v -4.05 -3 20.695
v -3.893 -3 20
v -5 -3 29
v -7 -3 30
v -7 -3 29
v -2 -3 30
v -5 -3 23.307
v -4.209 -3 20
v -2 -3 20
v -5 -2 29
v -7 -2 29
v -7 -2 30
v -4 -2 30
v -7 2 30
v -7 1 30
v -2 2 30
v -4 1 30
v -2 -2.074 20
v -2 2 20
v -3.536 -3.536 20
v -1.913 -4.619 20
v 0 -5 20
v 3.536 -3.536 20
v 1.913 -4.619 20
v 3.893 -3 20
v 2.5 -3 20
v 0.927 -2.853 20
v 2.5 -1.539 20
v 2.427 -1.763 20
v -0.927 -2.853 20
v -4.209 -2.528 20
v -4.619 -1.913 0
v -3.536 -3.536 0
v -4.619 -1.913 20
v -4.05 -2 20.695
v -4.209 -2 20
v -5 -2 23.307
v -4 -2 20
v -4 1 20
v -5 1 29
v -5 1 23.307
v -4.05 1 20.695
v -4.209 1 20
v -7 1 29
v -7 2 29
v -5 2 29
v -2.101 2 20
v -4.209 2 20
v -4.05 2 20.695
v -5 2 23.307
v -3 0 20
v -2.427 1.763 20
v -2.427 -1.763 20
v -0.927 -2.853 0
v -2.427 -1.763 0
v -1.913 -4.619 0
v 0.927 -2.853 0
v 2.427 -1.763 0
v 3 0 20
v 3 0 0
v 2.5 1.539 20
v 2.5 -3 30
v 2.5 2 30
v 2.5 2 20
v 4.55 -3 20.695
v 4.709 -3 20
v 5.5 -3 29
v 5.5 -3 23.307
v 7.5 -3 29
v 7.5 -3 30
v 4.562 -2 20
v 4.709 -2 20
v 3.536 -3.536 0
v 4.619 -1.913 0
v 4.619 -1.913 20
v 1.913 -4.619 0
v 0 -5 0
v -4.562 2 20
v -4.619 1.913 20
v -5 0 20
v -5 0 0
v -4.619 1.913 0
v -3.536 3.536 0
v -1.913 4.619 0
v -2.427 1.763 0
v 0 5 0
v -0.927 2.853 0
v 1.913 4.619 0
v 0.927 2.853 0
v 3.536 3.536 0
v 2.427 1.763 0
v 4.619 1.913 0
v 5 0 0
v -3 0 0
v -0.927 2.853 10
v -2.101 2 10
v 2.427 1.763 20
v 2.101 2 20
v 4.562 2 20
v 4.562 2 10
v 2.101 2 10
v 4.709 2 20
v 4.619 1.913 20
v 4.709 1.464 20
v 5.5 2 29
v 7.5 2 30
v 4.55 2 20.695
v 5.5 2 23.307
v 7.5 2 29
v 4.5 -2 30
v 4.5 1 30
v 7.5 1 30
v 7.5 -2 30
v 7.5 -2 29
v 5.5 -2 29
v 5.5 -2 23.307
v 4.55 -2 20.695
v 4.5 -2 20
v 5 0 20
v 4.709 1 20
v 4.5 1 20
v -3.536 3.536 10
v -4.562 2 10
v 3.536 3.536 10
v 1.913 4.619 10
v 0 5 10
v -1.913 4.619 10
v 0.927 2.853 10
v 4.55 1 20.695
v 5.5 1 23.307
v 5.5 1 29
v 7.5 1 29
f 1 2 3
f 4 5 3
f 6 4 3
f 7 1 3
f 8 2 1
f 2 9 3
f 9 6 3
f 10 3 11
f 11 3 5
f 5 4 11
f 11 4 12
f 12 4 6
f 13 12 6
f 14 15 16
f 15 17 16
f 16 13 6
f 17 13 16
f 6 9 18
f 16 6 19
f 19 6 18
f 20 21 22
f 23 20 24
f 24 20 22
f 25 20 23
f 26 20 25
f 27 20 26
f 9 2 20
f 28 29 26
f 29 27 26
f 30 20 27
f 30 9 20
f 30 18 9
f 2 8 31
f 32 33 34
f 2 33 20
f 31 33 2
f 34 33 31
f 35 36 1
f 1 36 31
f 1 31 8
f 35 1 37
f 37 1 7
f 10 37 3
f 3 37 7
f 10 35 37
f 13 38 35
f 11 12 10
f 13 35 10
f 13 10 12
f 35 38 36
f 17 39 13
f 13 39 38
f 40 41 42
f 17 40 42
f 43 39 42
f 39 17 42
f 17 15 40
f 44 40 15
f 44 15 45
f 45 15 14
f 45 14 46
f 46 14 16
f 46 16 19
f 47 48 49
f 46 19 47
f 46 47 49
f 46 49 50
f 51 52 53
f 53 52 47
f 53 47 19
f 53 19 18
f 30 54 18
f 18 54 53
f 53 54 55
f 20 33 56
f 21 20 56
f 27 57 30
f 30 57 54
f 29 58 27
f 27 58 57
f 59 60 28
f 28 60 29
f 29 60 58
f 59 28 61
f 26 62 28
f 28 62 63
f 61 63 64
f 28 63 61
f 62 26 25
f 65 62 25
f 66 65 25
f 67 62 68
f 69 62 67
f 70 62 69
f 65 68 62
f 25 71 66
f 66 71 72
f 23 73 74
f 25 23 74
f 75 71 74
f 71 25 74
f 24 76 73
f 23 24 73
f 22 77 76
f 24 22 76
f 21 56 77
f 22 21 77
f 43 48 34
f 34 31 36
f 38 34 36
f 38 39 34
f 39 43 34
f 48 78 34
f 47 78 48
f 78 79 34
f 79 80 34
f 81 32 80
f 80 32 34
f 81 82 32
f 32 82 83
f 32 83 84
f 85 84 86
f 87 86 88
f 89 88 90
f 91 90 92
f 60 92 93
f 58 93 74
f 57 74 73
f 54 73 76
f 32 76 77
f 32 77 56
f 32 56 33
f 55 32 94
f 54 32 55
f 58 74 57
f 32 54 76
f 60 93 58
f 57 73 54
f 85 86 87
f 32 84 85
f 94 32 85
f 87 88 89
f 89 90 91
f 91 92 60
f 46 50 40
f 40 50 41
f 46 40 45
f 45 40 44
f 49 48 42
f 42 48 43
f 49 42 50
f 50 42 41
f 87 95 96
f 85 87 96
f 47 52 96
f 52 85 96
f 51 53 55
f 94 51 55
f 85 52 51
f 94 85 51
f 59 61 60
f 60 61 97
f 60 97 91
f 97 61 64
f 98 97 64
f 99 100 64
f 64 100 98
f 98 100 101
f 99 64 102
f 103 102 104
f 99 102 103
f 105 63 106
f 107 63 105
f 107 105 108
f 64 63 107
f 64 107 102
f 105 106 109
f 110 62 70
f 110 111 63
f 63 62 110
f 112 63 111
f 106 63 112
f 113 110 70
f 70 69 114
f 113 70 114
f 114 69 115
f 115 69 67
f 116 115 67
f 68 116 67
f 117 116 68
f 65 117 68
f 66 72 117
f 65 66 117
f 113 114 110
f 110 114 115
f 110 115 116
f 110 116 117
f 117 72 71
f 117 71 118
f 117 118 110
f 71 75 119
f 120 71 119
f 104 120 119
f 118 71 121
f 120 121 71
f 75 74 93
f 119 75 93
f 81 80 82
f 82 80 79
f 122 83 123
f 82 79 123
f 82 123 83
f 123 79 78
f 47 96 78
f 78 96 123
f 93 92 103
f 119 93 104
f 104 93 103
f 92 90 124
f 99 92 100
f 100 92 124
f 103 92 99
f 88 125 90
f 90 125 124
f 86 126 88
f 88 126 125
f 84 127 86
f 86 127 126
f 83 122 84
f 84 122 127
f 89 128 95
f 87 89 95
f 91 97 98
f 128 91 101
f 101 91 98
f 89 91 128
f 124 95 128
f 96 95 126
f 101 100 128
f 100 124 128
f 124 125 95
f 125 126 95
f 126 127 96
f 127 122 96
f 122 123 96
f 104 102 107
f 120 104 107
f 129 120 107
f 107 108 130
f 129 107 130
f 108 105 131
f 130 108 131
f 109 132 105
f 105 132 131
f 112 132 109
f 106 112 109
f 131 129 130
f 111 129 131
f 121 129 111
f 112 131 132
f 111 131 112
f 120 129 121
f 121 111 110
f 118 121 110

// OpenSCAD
/*
    Openscad Rubber-band Loom.

    This is a fishtail rubber-band loom for weaving.

    Copyright (C) 2014. Linus Molteno, linus@molteno.net
  
    This program is free software: you can redistribute it and/or modify
    it under the terms of the GNU General Public License as published by
    the Free Software Foundation, either version 3 of the License, or
    (at your option) any later version.

    This program is distributed in the hope that it will be useful,
    but WITHOUT ANY WARRANTY; without even the implied warranty of
    MERCHANTABILITY or FITNESS FOR A PARTICULAR PURPOSE.  See the
    GNU General Public License for more details.

    You should have received a copy of the GNU General Public License
    along with this program.  If not, see <http://www.gnu.org/licenses/>.
*/

module fishtail_post(h) {
  difference() {
    cube([5,5,h]);
    translate([1,-1,-1])cube([3,4,h+5]);
    translate([1,-1,1.5])cube([3,4,h-3]);
    translate([-2,-2, 1]) cube([10,4,h-2]);
    translate([-1,-1,-1])cube([10,3,3]);
    hull() {
    translate([-1,1,0.25])rotate([90,90,90])cylinder(r=2, h=10);
    translate([-1,0,3])rotate([90,90,90])cylinder(r=2, h=10);
    }
  }
}

module base() {
  difference() {
    cylinder(h=20, r=5);
    translate([0,0,-1])cylinder(h=23,r=3);
    translate([-13,2,10])cube(20,5,5);
  }
}
module full() {
  translate([-7,2,20])rotate([0,0,270])fishtail_post(h=10);
  translate([7.5,-3,20])rotate([0,0,90])fishtail_post(h=10);
  base();
}

full();
